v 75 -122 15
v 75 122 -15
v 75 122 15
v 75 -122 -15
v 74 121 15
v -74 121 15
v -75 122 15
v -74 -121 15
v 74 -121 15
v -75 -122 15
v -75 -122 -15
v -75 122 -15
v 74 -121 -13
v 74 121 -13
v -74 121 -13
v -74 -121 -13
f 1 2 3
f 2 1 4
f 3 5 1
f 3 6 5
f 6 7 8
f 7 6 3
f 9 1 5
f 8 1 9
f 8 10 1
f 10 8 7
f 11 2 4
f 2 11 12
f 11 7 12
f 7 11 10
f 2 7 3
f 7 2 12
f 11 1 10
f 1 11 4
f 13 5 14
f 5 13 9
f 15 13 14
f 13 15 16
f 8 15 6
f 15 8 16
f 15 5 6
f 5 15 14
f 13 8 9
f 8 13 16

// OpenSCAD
$fn = 100;
difference()
{
  cube(size = [150, 244, 30], center = true);
  #union()
  {
    translate(v = [0, 0, 2])
    {
      cube(size = [148, 242, 30], center = true);
    }
  }
}
